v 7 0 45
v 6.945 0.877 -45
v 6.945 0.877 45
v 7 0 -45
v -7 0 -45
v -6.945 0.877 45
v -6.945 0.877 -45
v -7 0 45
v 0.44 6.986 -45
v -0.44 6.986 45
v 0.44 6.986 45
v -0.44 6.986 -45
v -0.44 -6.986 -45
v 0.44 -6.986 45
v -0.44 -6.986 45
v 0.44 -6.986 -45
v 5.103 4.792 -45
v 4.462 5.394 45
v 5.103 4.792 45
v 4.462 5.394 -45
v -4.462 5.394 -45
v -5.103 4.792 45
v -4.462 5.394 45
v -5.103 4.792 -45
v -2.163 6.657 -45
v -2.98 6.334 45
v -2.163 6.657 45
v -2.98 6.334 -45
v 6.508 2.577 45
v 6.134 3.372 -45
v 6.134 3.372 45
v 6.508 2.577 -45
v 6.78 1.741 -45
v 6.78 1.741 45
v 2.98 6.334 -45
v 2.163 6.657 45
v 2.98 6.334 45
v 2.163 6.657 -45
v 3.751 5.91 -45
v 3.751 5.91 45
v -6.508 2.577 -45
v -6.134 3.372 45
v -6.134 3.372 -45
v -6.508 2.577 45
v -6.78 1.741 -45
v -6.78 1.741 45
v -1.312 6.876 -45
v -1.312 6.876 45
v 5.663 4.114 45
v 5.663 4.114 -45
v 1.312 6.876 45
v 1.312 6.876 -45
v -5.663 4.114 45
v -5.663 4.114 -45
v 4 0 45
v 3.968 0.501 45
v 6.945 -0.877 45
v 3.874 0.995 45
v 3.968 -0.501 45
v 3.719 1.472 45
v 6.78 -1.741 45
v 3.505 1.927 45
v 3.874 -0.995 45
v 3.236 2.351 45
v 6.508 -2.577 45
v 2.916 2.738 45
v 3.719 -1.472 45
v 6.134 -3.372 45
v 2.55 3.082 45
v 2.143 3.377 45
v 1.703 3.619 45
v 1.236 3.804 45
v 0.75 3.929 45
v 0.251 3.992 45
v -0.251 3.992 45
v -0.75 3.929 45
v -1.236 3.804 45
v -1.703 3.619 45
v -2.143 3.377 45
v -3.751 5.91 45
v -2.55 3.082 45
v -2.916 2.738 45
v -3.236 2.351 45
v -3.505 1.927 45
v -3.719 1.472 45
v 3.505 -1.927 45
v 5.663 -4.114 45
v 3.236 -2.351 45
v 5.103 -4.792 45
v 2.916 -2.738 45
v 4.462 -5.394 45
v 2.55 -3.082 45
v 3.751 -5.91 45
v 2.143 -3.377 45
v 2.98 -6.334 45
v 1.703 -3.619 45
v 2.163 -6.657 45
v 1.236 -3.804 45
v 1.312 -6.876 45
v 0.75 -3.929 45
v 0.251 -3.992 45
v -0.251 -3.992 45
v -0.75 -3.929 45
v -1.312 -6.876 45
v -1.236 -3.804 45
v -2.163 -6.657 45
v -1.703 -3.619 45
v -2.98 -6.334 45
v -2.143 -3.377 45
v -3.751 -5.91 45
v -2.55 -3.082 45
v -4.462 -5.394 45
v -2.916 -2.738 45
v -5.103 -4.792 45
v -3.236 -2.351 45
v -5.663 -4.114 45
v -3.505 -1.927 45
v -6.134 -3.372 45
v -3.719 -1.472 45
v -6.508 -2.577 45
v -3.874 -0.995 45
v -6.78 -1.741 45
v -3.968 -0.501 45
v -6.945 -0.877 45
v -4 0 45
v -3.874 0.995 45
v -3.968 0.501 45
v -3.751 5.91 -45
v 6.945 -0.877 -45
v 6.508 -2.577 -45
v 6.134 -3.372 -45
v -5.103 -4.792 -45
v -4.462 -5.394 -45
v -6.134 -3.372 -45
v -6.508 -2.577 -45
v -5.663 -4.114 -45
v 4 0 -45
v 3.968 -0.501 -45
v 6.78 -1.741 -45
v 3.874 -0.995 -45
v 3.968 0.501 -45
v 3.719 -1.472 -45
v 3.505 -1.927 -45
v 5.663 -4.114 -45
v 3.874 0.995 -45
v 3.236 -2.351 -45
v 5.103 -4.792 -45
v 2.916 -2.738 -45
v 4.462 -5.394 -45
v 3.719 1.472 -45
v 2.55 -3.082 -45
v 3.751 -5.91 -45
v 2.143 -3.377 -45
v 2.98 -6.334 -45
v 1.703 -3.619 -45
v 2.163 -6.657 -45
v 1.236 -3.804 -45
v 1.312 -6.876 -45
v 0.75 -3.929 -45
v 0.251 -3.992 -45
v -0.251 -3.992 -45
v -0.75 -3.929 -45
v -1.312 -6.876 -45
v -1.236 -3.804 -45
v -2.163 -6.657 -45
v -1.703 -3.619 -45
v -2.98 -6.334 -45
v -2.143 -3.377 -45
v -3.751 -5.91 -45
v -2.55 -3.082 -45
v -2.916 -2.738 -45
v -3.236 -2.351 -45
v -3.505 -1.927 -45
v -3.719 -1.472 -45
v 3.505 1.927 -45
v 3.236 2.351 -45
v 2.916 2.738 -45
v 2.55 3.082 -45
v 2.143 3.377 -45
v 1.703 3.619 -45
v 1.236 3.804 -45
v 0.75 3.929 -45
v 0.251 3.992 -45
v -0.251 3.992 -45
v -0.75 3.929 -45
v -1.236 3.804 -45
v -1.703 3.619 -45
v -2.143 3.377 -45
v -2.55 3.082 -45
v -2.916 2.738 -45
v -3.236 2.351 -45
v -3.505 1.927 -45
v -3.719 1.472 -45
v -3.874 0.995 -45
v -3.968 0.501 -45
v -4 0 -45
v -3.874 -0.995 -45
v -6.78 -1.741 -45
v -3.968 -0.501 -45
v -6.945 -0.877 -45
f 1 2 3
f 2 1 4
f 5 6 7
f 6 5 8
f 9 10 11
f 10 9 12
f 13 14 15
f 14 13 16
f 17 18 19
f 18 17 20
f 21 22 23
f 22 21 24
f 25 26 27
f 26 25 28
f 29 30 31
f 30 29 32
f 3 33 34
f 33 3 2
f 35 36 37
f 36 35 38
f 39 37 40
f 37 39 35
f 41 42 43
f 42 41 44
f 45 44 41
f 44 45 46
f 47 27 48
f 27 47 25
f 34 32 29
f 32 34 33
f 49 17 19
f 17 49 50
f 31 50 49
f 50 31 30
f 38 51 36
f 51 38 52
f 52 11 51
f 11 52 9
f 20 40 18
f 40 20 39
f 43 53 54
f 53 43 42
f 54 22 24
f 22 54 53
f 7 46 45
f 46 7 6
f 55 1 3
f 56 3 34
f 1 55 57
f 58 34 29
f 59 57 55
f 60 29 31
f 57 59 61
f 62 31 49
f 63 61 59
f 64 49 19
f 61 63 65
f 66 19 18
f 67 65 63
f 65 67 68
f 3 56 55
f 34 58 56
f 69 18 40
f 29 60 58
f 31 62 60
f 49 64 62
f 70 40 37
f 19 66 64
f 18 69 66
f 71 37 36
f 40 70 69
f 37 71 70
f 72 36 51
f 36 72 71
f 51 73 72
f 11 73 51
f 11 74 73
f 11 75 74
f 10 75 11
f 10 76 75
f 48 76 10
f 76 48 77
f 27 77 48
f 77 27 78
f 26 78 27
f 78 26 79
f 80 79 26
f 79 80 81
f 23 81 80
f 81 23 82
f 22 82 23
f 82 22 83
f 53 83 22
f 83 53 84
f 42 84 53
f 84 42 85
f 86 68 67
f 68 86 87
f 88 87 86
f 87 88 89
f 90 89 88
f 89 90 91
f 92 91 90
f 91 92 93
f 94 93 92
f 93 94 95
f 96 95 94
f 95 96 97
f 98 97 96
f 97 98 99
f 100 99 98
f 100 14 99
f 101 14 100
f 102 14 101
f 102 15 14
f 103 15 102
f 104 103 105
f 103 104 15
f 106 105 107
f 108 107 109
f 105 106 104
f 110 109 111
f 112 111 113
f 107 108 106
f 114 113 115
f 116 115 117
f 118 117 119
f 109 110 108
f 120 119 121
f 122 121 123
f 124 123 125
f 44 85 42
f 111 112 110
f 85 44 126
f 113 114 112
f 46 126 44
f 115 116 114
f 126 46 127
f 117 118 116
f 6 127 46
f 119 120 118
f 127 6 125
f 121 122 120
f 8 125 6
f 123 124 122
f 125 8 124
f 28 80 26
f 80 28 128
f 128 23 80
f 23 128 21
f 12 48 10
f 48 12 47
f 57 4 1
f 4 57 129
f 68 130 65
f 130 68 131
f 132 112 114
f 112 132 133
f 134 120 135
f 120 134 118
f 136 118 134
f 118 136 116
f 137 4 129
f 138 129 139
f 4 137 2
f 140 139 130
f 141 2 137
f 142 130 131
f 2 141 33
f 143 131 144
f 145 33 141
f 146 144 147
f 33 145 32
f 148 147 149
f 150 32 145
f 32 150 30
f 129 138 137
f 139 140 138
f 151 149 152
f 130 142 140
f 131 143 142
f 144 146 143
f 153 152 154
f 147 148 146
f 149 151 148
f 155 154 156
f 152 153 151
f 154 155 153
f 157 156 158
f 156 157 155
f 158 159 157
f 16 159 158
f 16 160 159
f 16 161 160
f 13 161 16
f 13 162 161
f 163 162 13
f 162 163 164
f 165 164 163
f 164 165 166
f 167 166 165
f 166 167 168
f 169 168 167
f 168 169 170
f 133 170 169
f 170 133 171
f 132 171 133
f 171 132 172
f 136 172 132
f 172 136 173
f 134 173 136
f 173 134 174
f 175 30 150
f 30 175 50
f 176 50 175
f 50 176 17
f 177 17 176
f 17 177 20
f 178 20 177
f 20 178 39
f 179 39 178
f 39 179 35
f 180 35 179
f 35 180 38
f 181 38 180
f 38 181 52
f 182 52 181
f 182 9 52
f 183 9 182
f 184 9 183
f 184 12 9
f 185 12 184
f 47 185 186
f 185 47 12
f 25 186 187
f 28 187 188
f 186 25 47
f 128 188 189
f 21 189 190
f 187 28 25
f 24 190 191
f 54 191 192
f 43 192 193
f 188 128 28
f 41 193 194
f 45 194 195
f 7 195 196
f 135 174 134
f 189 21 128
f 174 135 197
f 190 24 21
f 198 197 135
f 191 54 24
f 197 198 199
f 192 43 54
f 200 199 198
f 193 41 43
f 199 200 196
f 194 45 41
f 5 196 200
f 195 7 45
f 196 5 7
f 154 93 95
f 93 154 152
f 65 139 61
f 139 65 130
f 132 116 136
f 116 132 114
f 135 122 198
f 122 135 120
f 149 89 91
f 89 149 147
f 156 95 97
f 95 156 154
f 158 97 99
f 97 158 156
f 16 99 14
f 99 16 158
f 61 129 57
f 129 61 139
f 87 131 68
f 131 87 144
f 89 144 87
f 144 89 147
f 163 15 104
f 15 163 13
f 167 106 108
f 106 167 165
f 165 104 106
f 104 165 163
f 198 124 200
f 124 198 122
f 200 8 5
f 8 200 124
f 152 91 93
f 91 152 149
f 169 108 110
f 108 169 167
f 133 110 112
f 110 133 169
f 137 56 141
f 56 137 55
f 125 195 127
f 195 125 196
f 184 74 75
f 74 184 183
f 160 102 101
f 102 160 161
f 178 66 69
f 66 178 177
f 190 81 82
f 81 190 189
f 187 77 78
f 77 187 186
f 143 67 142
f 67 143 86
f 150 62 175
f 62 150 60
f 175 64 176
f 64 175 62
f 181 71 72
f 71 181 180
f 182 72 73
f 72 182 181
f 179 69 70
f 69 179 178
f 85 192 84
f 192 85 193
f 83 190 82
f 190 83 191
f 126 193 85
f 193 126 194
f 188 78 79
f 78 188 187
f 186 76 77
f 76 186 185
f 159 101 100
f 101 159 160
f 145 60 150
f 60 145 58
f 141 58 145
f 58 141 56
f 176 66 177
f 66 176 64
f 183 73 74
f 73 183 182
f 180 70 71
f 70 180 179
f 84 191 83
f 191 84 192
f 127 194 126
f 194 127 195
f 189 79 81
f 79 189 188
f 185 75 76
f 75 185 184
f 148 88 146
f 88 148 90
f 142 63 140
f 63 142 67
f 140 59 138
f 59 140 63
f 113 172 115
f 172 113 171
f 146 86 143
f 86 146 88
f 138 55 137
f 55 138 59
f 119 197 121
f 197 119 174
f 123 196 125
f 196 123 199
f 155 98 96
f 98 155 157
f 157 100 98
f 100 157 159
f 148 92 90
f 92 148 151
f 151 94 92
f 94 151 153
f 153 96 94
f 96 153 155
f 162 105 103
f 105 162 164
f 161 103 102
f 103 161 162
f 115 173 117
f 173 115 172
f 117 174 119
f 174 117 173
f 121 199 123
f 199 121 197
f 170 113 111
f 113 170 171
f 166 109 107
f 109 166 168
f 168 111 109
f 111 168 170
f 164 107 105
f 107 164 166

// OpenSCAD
$fn = 50;


difference() {
	union() {
		translate(v = [0, 0, -45.0000000000]) {
			cylinder(h = 90, r = 7.0000000000);
		}
	}
	union() {
		translate(v = [0, 0, -100.0000000000]) {
			cylinder(h = 200, r = 4);
		}
	}
}
